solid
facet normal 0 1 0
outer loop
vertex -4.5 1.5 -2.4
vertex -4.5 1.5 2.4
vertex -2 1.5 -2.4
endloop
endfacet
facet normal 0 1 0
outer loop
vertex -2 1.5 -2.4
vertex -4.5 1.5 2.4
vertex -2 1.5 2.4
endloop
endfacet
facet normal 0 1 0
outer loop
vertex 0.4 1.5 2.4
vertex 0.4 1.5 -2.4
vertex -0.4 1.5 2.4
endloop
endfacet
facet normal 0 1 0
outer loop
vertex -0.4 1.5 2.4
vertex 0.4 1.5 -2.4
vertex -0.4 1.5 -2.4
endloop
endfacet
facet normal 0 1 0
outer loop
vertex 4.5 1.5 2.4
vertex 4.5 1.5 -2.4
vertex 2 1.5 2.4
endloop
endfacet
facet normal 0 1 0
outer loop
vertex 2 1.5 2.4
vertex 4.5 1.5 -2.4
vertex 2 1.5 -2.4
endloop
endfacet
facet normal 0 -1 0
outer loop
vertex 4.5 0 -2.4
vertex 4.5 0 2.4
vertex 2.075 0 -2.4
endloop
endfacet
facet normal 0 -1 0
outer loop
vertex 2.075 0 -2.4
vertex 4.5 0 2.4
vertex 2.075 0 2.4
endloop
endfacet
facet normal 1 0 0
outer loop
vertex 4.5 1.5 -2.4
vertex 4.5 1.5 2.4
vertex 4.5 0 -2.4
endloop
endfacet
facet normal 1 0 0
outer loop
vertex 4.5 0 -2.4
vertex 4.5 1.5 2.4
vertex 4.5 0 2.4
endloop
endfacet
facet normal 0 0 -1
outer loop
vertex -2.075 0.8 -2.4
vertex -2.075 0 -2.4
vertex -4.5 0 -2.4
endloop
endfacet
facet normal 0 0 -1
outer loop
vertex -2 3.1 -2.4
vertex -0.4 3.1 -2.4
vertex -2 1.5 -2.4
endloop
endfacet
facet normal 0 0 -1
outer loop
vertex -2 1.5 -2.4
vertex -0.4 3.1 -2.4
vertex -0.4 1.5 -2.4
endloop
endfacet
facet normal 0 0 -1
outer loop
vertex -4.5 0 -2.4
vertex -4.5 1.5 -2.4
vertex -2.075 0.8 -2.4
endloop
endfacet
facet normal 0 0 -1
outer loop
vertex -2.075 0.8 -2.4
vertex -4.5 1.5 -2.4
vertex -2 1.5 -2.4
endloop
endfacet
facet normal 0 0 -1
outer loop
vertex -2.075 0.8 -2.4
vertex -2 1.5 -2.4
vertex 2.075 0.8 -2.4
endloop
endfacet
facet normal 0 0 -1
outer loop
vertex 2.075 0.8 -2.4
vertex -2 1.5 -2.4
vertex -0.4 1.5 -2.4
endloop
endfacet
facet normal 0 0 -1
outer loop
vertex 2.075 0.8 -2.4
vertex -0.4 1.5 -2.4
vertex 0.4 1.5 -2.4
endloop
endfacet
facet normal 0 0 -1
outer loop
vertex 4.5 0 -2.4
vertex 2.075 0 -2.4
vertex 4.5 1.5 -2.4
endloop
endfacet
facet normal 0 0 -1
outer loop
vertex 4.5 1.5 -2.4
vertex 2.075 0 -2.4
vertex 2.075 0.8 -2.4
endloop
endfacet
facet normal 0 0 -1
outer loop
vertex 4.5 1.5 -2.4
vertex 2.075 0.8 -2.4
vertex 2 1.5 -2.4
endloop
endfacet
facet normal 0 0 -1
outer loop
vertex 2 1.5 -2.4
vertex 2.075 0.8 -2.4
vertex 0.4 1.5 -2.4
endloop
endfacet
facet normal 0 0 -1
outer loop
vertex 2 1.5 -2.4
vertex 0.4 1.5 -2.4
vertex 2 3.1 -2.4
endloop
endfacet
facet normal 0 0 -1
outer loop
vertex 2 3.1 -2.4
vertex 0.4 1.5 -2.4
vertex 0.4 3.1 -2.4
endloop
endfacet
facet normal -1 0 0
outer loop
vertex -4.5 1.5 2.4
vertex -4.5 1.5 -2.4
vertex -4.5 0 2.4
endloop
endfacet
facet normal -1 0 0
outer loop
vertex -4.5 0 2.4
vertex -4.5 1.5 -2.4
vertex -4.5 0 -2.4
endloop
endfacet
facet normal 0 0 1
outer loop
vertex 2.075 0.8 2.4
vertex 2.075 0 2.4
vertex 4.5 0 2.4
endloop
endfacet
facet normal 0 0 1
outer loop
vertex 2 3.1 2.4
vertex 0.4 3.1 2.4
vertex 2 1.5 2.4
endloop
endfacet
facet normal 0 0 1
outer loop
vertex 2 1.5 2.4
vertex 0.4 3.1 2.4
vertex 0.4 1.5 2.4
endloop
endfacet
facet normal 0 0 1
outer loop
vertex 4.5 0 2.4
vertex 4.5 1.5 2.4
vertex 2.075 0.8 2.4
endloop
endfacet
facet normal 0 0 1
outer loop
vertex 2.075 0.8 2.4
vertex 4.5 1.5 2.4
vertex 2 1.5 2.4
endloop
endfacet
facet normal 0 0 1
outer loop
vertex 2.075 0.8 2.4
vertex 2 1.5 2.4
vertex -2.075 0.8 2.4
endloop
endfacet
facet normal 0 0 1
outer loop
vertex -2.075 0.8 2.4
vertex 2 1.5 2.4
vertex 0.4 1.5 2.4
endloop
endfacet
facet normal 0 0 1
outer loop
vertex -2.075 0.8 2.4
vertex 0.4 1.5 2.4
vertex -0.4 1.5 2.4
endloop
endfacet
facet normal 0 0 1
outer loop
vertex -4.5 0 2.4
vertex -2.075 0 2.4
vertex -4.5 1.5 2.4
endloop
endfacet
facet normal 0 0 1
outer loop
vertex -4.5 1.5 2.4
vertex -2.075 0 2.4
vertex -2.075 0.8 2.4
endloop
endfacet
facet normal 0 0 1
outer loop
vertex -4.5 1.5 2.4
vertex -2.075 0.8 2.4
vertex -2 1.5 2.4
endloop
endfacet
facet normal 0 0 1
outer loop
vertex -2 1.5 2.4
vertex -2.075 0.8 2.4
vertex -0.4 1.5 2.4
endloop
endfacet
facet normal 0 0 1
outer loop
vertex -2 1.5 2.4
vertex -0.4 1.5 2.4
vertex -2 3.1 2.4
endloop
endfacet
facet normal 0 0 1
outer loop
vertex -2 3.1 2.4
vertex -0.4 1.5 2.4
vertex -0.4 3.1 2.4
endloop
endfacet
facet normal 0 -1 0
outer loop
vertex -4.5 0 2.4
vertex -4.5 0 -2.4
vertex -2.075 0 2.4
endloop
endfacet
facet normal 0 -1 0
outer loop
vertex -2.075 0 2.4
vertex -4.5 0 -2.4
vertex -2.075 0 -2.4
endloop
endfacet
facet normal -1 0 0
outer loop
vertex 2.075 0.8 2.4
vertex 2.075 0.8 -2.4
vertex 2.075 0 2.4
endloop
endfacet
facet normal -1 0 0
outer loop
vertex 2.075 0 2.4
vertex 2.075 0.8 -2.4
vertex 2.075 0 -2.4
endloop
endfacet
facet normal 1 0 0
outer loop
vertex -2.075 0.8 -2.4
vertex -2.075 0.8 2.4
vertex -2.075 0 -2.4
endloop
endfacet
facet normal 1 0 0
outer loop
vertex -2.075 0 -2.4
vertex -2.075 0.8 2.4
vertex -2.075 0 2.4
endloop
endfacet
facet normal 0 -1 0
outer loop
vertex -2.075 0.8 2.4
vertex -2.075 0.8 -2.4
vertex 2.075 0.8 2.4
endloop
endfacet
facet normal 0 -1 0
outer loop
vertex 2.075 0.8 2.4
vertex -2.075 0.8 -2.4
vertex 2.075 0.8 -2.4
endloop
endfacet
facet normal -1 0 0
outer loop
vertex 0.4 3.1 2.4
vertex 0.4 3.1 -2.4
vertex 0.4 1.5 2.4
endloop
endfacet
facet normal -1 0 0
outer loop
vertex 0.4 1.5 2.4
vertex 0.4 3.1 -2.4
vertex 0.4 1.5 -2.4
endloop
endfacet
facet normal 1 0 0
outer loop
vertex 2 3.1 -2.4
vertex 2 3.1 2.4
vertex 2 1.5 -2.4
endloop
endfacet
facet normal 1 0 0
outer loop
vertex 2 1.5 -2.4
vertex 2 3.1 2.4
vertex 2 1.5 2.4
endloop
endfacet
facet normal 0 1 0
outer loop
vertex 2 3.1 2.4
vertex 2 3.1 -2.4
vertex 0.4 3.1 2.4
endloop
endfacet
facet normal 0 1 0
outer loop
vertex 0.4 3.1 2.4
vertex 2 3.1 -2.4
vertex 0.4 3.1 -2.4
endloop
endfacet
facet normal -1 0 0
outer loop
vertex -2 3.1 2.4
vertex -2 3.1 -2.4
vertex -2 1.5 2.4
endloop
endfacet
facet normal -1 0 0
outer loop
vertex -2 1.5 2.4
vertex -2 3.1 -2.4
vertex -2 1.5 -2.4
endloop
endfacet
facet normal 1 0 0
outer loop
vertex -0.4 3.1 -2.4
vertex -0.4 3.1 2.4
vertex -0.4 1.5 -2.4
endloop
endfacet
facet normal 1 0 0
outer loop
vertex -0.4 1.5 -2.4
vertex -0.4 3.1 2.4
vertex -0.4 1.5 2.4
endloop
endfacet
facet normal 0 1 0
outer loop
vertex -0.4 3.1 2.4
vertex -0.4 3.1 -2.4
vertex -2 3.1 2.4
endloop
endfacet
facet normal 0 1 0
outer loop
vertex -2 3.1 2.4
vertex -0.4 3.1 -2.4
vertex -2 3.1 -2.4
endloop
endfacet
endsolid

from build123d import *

# Parameters (mm, degrees)
SKETCH1_W           = 9
SKETCH1_H           = 4.8
BOSS_EXTRUDE1_DEPTH = 1.5
SKETCH2_W           = 4.15
SKETCH2_H           = 4.8
CUT_EXTRUDE1_DEPTH  = 0.8
SKETCH3_W           = 1.6
SKETCH3_H           = 4.8
BOSS_EXTRUDE2_DEPTH = 1.6


with BuildPart() as part:
    # Sketch1 → Boss-Extrude1 (new body)
    with BuildSketch(Plane(origin=(0, 0, 0), x_dir=(1, 0, 0), z_dir=(0, 1, 0))):
        Rectangle(SKETCH1_W, SKETCH1_H)
    extrude(amount=BOSS_EXTRUDE1_DEPTH)

    # Sketch2 → Cut-Extrude1 (cut)
    with BuildSketch(Plane(origin=(0, 0, 0), x_dir=(-1, 0, 0), z_dir=(0, -1, 0))):
        Rectangle(SKETCH2_W, SKETCH2_H)
    extrude(amount=-CUT_EXTRUDE1_DEPTH, mode=Mode.SUBTRACT)

    # Sketch3 → Boss-Extrude2 (add)
    with BuildSketch(Plane(origin=(0, 1.5, 0), x_dir=(1, 0, 0), z_dir=(0, 1, 0))):
        with Locations((1.2, 0)):
            Rectangle(SKETCH3_W, SKETCH3_H)
        with Locations((-1.2, 0)):
            Rectangle(SKETCH3_W, SKETCH3_H)
    extrude(amount=BOSS_EXTRUDE2_DEPTH)


solid = part.part
